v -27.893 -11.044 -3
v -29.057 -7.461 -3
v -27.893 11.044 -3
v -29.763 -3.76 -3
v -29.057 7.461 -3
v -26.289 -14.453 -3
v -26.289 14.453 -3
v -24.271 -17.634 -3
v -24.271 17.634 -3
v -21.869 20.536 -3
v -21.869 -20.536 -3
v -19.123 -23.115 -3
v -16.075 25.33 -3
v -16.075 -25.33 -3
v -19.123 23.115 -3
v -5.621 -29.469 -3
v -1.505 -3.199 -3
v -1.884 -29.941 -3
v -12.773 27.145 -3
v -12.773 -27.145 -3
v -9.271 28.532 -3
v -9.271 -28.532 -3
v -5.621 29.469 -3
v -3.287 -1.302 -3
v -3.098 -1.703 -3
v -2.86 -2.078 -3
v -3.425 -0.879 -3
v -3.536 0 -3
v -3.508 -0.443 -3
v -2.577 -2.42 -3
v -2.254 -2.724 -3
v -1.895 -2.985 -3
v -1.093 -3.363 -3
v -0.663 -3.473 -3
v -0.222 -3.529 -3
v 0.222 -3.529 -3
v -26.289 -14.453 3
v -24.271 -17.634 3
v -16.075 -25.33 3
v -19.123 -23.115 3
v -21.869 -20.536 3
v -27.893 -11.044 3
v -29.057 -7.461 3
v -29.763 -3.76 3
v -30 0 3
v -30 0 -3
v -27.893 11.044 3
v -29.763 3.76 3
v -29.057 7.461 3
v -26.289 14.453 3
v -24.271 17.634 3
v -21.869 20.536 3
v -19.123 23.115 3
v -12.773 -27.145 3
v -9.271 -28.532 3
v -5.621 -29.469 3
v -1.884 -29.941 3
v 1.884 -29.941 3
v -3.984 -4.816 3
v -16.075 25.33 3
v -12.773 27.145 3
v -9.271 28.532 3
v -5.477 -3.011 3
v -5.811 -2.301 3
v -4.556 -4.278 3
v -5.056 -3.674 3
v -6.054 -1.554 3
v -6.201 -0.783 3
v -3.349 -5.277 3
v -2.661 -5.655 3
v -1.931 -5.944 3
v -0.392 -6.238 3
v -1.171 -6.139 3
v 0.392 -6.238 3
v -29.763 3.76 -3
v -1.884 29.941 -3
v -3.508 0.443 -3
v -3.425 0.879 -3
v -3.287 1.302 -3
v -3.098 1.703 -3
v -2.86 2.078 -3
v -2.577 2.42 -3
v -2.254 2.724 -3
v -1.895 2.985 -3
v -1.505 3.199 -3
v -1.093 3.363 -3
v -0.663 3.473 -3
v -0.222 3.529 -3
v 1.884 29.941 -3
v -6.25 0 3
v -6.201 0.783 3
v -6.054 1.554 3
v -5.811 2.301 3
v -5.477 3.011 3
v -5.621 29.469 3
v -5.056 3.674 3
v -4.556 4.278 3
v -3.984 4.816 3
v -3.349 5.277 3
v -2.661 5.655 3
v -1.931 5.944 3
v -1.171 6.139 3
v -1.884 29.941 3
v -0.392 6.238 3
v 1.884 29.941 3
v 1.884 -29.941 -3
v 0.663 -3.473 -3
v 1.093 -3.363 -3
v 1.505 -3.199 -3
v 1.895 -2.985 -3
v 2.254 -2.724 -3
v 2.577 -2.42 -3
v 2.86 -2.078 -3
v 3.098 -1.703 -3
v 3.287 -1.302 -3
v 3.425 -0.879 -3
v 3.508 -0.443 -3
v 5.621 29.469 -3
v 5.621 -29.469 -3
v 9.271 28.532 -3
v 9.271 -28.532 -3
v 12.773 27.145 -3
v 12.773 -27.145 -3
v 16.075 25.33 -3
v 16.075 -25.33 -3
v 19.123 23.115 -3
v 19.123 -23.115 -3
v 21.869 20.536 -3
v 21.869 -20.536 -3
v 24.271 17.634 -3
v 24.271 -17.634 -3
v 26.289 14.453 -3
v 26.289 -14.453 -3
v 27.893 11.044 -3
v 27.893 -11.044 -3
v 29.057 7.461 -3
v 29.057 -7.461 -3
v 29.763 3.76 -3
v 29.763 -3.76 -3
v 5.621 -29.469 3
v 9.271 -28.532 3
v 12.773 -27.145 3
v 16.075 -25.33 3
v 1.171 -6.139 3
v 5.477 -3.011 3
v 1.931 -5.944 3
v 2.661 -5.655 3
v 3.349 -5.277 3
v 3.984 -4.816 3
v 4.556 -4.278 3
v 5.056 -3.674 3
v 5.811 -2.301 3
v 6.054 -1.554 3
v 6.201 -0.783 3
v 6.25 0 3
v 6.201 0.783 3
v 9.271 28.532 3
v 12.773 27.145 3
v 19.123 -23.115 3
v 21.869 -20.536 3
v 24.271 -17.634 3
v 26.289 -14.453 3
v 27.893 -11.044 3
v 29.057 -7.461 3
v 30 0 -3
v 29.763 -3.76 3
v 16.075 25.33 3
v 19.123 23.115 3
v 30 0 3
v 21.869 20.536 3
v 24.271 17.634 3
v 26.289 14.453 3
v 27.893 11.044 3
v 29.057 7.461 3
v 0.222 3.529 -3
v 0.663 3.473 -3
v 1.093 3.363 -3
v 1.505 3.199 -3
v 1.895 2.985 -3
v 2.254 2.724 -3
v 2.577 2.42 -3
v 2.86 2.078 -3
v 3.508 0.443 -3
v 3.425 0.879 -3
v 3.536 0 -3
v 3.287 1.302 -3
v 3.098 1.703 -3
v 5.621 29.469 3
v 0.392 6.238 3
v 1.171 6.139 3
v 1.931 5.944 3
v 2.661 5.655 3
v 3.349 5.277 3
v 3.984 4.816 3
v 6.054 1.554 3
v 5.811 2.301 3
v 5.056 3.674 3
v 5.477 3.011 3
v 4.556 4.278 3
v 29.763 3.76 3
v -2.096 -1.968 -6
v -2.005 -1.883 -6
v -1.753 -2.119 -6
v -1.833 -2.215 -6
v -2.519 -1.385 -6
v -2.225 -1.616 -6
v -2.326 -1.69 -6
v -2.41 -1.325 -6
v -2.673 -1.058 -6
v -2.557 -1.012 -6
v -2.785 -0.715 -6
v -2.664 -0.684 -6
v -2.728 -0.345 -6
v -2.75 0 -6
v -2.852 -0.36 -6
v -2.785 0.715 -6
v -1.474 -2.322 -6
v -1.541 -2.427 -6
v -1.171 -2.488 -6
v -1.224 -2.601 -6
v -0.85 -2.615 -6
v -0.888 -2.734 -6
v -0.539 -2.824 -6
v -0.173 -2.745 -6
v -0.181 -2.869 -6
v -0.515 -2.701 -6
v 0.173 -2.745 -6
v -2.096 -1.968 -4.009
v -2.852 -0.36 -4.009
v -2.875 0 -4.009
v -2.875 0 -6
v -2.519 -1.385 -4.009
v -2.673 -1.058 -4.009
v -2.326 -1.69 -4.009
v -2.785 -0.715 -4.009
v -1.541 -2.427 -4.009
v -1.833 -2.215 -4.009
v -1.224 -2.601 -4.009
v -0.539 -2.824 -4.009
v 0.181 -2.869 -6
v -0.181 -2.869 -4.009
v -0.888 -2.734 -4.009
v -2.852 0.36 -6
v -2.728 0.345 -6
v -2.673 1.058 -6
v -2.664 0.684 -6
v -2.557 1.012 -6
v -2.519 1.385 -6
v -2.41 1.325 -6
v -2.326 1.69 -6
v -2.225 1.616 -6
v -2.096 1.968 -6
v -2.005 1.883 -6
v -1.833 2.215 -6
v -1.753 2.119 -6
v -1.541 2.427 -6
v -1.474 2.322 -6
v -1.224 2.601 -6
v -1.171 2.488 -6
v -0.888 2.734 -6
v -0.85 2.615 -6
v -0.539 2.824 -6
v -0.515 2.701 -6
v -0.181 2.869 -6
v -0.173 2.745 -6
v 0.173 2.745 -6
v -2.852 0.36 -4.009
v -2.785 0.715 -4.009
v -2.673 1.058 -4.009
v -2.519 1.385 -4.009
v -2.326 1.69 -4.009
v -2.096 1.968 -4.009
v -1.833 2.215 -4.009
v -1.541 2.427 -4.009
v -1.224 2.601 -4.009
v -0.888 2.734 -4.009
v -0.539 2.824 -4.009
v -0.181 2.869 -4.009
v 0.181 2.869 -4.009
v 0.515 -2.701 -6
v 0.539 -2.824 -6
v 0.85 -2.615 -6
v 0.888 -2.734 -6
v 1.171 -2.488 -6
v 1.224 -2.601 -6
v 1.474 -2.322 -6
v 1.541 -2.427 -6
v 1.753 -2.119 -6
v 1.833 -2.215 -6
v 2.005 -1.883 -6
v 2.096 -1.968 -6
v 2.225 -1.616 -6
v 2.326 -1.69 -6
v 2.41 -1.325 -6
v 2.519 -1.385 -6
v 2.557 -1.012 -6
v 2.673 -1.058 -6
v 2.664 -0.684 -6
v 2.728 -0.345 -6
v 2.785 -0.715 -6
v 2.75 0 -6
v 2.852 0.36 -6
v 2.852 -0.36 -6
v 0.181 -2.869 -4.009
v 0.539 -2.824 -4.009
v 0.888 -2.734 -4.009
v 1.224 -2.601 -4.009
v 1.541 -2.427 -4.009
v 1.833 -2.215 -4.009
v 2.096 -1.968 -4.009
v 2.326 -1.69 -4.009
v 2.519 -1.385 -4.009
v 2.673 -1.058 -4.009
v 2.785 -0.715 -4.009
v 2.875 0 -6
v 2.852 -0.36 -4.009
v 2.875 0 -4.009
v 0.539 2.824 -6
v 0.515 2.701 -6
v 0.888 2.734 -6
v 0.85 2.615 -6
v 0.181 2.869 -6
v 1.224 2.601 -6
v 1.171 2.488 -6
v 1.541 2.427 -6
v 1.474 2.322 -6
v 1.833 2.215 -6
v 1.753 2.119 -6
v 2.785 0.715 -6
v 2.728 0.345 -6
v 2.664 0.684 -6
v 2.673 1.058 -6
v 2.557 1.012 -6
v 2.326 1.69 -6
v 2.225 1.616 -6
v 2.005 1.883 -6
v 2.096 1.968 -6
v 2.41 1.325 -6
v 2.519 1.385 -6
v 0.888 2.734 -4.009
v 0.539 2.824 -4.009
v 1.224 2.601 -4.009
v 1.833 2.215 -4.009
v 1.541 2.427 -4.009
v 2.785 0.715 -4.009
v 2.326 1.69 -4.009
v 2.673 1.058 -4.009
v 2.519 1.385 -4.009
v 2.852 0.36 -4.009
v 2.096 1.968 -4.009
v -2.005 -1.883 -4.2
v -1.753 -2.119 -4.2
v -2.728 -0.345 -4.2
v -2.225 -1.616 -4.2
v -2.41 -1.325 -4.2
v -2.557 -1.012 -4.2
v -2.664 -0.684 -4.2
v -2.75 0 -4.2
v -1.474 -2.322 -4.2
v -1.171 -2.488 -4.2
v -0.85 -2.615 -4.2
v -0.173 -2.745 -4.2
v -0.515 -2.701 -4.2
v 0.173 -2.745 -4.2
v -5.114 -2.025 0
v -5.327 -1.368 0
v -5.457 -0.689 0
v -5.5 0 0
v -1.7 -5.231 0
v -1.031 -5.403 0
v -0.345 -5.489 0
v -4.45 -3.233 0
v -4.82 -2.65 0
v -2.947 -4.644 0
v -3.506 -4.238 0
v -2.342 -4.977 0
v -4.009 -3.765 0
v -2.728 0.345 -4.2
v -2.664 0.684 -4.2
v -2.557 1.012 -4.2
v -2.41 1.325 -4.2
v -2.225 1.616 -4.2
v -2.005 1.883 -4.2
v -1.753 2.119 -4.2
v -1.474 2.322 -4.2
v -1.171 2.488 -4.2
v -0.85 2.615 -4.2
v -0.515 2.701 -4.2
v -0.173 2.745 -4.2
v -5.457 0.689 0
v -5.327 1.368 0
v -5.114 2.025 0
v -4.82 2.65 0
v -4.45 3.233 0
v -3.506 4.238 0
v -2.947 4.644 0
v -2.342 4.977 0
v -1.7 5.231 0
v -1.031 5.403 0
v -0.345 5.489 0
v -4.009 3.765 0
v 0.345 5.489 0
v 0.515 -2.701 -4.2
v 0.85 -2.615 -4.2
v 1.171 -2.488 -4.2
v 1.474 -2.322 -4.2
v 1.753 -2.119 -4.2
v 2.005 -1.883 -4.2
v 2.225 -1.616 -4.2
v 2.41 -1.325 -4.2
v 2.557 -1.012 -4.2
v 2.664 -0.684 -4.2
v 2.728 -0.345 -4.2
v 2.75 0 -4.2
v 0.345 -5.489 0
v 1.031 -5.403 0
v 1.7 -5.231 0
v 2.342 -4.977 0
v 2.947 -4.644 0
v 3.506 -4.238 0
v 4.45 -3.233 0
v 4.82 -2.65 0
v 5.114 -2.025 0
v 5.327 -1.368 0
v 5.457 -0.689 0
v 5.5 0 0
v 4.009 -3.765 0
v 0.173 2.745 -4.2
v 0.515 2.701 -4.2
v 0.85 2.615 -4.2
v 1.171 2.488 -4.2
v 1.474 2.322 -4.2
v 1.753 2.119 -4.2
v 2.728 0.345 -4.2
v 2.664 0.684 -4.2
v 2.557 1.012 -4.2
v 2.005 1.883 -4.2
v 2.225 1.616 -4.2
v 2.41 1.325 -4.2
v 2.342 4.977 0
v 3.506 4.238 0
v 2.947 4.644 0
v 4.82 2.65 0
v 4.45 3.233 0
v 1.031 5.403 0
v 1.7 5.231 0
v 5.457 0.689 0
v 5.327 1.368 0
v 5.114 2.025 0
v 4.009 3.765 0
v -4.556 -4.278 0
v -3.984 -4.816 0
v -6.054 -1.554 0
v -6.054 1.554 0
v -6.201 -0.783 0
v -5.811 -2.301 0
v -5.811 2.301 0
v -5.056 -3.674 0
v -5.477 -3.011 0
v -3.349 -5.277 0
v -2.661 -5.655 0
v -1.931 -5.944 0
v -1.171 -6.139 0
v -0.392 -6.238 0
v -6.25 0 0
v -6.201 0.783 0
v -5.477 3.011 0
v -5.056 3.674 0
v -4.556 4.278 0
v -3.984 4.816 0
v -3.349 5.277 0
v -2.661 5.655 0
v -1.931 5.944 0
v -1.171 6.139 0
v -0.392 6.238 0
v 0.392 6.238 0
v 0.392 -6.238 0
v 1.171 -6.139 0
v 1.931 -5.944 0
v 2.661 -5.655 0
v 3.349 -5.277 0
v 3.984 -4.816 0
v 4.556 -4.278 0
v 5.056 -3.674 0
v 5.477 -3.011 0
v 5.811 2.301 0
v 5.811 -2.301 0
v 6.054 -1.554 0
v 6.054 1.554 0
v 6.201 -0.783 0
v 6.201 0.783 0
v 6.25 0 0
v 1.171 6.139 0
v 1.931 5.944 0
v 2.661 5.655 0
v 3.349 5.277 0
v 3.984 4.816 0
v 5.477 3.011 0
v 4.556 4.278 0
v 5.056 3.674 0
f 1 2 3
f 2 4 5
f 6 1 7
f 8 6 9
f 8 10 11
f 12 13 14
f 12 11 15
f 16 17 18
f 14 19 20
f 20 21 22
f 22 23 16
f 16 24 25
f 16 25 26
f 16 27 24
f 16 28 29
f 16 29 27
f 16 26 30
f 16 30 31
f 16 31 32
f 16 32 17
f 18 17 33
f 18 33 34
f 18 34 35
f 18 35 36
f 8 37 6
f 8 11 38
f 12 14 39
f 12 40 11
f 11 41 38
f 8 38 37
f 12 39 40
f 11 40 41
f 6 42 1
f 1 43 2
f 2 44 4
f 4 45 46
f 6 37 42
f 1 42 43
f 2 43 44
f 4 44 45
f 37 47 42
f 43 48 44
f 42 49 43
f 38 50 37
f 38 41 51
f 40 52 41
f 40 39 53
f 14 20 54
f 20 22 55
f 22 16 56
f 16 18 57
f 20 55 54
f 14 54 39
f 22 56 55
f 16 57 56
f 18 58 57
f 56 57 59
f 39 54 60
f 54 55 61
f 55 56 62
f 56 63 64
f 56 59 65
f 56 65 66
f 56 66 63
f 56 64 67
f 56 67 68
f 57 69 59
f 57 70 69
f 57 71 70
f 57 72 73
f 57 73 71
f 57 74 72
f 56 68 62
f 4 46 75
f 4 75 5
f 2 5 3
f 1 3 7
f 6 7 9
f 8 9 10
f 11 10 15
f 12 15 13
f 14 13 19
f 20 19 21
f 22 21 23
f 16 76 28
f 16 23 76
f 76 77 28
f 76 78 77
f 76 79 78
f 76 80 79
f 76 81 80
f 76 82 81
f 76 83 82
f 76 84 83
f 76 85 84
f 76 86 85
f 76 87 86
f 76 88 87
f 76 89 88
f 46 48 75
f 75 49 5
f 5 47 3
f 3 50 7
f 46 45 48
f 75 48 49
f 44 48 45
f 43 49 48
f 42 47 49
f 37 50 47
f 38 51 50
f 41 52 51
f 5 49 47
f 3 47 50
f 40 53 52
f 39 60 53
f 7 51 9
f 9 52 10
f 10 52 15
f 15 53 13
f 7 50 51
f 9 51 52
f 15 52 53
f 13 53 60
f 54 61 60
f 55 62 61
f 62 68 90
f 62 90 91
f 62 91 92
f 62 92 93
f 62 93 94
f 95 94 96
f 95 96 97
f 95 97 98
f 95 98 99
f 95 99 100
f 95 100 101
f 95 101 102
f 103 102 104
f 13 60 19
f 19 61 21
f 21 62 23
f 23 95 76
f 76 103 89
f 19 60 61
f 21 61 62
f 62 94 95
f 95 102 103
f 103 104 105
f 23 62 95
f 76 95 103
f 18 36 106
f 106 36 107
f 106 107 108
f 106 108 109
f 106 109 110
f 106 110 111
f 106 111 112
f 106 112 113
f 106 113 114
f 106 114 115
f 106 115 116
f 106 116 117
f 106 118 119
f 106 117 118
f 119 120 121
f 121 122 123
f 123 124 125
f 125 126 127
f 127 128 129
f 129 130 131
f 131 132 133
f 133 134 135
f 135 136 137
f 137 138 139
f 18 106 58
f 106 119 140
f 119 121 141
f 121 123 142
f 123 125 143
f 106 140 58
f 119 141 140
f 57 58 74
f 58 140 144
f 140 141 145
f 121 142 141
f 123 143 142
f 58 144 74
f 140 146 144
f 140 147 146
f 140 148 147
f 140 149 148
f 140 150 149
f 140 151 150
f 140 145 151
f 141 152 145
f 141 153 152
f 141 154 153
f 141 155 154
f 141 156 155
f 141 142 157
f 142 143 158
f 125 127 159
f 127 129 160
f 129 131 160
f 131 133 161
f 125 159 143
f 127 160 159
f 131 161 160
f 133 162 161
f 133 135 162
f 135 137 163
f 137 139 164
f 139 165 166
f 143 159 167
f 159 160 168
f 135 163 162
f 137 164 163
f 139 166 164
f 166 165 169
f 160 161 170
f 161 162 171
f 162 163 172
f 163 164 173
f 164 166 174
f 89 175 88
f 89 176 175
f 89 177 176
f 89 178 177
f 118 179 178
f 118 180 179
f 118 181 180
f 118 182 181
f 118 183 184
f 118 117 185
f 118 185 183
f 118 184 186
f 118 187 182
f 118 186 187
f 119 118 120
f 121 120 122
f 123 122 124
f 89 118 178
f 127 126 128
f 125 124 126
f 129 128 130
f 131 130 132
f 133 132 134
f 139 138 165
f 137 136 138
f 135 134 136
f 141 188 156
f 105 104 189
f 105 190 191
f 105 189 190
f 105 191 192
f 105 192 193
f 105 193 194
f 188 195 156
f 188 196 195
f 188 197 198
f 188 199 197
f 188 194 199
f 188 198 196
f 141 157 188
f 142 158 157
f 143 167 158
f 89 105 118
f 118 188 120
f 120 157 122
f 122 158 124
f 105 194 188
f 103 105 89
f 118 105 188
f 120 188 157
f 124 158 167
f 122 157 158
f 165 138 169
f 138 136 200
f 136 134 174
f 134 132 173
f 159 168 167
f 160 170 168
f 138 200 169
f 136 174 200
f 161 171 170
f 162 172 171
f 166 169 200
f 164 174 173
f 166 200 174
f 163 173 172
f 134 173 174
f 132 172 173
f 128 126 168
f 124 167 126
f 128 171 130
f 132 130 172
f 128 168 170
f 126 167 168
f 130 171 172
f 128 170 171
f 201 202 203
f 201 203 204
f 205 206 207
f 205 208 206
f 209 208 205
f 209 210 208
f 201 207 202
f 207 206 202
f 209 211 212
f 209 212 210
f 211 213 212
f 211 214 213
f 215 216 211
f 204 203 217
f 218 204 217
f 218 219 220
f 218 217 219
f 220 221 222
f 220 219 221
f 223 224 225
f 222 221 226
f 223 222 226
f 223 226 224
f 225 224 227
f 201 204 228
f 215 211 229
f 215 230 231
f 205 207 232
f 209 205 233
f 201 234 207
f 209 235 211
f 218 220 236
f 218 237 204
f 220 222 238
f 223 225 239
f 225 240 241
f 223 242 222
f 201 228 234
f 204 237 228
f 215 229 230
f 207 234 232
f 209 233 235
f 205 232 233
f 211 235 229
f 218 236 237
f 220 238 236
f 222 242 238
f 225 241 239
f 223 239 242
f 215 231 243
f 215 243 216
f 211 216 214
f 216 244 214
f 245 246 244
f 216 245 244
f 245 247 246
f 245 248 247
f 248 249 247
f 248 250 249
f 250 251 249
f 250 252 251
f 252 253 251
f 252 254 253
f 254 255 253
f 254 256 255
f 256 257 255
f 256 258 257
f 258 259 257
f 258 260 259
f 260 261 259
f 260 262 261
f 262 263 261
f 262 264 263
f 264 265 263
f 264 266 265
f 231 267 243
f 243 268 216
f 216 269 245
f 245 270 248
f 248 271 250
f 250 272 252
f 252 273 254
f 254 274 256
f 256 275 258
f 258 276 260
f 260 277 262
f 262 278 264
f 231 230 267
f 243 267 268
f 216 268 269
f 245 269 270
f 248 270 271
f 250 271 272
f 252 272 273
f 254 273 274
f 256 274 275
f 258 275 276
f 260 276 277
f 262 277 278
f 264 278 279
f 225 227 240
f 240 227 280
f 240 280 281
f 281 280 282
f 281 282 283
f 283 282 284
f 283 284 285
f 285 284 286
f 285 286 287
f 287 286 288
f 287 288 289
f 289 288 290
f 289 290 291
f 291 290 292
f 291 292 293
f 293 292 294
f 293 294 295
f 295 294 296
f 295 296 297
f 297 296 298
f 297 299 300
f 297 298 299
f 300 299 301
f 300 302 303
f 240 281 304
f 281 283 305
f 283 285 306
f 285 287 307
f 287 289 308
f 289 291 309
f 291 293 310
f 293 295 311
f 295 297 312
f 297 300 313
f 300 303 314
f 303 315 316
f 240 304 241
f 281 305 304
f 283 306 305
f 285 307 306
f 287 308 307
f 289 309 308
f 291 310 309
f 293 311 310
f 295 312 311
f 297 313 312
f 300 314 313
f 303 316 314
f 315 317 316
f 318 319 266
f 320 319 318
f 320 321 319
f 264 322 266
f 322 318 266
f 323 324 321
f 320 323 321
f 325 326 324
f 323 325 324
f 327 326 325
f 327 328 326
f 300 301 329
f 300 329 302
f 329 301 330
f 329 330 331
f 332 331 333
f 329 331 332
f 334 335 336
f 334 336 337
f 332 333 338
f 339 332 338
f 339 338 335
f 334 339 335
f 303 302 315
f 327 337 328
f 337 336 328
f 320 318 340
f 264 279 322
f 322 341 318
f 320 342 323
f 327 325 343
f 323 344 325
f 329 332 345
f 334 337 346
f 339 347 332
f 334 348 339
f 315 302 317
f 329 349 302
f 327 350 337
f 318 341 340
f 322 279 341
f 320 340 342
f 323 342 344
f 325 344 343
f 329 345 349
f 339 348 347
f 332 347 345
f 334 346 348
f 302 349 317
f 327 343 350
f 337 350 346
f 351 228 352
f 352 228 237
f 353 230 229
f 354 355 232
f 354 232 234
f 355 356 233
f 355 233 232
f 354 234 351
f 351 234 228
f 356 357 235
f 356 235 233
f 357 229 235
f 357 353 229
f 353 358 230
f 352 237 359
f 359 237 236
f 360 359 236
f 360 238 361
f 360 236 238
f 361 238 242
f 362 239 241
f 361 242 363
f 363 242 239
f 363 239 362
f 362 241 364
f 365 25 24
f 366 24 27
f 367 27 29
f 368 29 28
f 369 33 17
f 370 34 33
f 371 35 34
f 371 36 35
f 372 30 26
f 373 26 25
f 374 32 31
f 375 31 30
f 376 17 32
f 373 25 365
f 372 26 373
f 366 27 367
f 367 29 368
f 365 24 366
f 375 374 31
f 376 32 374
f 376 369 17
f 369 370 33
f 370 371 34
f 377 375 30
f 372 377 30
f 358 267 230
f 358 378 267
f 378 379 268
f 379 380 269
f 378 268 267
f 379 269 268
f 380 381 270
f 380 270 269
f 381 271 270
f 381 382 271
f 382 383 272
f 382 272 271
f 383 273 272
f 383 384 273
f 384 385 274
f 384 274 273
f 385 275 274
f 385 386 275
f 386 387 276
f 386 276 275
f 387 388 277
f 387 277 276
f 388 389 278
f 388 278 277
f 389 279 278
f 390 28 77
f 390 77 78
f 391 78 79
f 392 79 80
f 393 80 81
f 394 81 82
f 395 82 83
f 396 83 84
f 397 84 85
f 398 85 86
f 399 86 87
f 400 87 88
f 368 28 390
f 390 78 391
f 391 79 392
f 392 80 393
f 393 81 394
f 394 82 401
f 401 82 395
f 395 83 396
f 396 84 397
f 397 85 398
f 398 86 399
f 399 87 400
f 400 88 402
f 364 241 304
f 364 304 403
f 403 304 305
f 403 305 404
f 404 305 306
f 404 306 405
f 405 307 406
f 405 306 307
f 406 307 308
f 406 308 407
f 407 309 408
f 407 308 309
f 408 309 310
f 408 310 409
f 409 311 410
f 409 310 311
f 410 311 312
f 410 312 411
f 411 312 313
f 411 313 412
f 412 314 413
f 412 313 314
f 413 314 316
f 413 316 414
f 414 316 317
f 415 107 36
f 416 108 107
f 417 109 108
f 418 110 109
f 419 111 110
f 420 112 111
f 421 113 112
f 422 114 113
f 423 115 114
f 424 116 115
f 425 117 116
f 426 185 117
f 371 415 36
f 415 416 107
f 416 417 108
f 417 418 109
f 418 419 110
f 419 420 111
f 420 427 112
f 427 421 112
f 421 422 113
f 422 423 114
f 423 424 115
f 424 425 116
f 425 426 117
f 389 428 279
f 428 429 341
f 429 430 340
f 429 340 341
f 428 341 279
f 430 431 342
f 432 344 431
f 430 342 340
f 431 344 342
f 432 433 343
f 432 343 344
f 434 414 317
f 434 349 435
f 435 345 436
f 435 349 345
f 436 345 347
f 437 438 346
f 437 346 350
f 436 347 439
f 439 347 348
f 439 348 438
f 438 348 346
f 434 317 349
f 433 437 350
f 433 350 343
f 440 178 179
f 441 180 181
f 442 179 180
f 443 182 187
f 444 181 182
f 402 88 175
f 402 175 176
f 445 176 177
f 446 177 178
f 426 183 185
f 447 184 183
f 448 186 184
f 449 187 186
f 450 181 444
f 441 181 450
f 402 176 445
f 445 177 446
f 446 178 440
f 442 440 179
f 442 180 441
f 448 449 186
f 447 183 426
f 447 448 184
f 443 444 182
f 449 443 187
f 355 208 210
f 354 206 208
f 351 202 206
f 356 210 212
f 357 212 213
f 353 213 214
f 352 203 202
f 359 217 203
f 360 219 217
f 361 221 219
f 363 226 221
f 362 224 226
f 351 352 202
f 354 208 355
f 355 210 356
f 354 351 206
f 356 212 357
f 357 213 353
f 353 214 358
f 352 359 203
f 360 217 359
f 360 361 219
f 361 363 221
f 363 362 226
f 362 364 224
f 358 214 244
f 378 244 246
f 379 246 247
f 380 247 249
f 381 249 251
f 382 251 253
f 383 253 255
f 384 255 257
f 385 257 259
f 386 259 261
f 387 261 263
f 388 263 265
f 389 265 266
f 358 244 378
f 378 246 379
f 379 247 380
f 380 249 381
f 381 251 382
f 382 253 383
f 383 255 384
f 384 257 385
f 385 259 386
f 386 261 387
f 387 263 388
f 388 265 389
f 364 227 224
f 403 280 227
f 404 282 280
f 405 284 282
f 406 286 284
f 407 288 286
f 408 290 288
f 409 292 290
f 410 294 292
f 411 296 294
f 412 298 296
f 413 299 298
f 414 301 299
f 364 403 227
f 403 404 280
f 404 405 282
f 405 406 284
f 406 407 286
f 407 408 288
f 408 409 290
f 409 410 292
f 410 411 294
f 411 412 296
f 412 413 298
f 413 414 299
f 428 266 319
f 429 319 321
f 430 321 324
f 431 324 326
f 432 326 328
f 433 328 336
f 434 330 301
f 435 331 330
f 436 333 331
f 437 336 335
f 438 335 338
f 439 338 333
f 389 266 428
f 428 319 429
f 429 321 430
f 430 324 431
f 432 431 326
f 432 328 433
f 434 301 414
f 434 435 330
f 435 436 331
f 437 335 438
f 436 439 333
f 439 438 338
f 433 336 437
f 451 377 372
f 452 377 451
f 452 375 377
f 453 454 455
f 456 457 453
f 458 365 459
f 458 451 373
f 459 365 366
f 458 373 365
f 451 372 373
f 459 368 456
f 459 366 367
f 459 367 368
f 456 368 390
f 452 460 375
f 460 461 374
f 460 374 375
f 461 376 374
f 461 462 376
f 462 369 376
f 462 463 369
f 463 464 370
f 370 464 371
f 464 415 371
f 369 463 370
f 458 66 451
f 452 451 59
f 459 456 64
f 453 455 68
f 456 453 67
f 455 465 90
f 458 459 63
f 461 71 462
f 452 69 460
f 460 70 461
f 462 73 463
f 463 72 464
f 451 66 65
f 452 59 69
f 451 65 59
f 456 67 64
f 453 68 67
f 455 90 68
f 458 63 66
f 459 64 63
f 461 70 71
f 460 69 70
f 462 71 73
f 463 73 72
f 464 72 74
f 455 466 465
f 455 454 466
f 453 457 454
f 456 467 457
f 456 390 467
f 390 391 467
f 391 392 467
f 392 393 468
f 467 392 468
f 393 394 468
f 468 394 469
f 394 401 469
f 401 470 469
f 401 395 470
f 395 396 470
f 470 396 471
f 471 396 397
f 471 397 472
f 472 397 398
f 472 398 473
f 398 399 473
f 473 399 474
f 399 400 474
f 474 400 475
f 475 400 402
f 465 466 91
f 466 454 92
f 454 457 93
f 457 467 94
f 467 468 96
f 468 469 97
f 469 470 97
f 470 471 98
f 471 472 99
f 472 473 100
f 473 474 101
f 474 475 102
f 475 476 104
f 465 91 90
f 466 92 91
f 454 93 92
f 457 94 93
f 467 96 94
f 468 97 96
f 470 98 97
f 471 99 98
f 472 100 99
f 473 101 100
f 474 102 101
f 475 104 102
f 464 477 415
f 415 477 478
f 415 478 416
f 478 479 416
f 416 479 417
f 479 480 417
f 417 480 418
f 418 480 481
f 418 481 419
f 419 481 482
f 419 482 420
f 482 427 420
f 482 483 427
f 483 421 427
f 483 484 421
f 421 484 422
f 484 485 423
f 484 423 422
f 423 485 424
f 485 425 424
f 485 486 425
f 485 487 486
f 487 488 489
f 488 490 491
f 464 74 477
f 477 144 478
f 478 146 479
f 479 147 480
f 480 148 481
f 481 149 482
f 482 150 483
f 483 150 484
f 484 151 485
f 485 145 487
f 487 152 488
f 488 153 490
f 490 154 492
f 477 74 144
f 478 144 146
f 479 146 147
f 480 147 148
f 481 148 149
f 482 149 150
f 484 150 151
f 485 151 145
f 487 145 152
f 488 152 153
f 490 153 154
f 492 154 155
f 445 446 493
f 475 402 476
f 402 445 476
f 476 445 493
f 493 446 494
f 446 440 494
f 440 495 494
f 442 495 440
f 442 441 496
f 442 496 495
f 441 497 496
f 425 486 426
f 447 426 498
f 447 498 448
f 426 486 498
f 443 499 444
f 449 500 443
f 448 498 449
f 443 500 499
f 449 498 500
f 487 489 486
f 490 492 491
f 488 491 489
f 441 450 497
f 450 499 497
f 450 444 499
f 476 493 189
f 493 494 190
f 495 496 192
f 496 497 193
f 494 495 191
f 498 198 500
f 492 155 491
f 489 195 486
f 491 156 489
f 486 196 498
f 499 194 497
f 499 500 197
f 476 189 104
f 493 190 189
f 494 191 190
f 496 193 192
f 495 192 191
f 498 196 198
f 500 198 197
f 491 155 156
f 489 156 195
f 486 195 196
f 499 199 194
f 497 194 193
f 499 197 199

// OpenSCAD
$fn = 50;

difference() {
	union() {
		translate(v = [0, 0, -3.0]) {
			cylinder(h = 6, r = 30.0);
		}
		#translate(v = [0, 0, -6.0]) {
			cylinder(h = 6, r = 2.875);
		}
	}
	union() {
		translate(v = [0, 0, 0]) {
			rotate(a = [0, 0, 0]) {
				difference() {
					union() {
						translate(v = [0, 0, -6.0]) {
							cylinder(h = 6, r = 2.25);
						}
						translate(v = [0, 0, -4.2]) {
							cylinder(h = 4.2, r1 = 2.75, r2 = 5.5);
						}
						translate(v = [0, 0, -6.0]) {
							cylinder(h = 6, r = 2.75);
						}
						translate(v = [0, 0, -6.0]) {
							cylinder(h = 6, r = 2.25);
						}
					}
					union();
				}
			}
		}
		#cylinder(h = 3, r = 6.25);
	}
}
